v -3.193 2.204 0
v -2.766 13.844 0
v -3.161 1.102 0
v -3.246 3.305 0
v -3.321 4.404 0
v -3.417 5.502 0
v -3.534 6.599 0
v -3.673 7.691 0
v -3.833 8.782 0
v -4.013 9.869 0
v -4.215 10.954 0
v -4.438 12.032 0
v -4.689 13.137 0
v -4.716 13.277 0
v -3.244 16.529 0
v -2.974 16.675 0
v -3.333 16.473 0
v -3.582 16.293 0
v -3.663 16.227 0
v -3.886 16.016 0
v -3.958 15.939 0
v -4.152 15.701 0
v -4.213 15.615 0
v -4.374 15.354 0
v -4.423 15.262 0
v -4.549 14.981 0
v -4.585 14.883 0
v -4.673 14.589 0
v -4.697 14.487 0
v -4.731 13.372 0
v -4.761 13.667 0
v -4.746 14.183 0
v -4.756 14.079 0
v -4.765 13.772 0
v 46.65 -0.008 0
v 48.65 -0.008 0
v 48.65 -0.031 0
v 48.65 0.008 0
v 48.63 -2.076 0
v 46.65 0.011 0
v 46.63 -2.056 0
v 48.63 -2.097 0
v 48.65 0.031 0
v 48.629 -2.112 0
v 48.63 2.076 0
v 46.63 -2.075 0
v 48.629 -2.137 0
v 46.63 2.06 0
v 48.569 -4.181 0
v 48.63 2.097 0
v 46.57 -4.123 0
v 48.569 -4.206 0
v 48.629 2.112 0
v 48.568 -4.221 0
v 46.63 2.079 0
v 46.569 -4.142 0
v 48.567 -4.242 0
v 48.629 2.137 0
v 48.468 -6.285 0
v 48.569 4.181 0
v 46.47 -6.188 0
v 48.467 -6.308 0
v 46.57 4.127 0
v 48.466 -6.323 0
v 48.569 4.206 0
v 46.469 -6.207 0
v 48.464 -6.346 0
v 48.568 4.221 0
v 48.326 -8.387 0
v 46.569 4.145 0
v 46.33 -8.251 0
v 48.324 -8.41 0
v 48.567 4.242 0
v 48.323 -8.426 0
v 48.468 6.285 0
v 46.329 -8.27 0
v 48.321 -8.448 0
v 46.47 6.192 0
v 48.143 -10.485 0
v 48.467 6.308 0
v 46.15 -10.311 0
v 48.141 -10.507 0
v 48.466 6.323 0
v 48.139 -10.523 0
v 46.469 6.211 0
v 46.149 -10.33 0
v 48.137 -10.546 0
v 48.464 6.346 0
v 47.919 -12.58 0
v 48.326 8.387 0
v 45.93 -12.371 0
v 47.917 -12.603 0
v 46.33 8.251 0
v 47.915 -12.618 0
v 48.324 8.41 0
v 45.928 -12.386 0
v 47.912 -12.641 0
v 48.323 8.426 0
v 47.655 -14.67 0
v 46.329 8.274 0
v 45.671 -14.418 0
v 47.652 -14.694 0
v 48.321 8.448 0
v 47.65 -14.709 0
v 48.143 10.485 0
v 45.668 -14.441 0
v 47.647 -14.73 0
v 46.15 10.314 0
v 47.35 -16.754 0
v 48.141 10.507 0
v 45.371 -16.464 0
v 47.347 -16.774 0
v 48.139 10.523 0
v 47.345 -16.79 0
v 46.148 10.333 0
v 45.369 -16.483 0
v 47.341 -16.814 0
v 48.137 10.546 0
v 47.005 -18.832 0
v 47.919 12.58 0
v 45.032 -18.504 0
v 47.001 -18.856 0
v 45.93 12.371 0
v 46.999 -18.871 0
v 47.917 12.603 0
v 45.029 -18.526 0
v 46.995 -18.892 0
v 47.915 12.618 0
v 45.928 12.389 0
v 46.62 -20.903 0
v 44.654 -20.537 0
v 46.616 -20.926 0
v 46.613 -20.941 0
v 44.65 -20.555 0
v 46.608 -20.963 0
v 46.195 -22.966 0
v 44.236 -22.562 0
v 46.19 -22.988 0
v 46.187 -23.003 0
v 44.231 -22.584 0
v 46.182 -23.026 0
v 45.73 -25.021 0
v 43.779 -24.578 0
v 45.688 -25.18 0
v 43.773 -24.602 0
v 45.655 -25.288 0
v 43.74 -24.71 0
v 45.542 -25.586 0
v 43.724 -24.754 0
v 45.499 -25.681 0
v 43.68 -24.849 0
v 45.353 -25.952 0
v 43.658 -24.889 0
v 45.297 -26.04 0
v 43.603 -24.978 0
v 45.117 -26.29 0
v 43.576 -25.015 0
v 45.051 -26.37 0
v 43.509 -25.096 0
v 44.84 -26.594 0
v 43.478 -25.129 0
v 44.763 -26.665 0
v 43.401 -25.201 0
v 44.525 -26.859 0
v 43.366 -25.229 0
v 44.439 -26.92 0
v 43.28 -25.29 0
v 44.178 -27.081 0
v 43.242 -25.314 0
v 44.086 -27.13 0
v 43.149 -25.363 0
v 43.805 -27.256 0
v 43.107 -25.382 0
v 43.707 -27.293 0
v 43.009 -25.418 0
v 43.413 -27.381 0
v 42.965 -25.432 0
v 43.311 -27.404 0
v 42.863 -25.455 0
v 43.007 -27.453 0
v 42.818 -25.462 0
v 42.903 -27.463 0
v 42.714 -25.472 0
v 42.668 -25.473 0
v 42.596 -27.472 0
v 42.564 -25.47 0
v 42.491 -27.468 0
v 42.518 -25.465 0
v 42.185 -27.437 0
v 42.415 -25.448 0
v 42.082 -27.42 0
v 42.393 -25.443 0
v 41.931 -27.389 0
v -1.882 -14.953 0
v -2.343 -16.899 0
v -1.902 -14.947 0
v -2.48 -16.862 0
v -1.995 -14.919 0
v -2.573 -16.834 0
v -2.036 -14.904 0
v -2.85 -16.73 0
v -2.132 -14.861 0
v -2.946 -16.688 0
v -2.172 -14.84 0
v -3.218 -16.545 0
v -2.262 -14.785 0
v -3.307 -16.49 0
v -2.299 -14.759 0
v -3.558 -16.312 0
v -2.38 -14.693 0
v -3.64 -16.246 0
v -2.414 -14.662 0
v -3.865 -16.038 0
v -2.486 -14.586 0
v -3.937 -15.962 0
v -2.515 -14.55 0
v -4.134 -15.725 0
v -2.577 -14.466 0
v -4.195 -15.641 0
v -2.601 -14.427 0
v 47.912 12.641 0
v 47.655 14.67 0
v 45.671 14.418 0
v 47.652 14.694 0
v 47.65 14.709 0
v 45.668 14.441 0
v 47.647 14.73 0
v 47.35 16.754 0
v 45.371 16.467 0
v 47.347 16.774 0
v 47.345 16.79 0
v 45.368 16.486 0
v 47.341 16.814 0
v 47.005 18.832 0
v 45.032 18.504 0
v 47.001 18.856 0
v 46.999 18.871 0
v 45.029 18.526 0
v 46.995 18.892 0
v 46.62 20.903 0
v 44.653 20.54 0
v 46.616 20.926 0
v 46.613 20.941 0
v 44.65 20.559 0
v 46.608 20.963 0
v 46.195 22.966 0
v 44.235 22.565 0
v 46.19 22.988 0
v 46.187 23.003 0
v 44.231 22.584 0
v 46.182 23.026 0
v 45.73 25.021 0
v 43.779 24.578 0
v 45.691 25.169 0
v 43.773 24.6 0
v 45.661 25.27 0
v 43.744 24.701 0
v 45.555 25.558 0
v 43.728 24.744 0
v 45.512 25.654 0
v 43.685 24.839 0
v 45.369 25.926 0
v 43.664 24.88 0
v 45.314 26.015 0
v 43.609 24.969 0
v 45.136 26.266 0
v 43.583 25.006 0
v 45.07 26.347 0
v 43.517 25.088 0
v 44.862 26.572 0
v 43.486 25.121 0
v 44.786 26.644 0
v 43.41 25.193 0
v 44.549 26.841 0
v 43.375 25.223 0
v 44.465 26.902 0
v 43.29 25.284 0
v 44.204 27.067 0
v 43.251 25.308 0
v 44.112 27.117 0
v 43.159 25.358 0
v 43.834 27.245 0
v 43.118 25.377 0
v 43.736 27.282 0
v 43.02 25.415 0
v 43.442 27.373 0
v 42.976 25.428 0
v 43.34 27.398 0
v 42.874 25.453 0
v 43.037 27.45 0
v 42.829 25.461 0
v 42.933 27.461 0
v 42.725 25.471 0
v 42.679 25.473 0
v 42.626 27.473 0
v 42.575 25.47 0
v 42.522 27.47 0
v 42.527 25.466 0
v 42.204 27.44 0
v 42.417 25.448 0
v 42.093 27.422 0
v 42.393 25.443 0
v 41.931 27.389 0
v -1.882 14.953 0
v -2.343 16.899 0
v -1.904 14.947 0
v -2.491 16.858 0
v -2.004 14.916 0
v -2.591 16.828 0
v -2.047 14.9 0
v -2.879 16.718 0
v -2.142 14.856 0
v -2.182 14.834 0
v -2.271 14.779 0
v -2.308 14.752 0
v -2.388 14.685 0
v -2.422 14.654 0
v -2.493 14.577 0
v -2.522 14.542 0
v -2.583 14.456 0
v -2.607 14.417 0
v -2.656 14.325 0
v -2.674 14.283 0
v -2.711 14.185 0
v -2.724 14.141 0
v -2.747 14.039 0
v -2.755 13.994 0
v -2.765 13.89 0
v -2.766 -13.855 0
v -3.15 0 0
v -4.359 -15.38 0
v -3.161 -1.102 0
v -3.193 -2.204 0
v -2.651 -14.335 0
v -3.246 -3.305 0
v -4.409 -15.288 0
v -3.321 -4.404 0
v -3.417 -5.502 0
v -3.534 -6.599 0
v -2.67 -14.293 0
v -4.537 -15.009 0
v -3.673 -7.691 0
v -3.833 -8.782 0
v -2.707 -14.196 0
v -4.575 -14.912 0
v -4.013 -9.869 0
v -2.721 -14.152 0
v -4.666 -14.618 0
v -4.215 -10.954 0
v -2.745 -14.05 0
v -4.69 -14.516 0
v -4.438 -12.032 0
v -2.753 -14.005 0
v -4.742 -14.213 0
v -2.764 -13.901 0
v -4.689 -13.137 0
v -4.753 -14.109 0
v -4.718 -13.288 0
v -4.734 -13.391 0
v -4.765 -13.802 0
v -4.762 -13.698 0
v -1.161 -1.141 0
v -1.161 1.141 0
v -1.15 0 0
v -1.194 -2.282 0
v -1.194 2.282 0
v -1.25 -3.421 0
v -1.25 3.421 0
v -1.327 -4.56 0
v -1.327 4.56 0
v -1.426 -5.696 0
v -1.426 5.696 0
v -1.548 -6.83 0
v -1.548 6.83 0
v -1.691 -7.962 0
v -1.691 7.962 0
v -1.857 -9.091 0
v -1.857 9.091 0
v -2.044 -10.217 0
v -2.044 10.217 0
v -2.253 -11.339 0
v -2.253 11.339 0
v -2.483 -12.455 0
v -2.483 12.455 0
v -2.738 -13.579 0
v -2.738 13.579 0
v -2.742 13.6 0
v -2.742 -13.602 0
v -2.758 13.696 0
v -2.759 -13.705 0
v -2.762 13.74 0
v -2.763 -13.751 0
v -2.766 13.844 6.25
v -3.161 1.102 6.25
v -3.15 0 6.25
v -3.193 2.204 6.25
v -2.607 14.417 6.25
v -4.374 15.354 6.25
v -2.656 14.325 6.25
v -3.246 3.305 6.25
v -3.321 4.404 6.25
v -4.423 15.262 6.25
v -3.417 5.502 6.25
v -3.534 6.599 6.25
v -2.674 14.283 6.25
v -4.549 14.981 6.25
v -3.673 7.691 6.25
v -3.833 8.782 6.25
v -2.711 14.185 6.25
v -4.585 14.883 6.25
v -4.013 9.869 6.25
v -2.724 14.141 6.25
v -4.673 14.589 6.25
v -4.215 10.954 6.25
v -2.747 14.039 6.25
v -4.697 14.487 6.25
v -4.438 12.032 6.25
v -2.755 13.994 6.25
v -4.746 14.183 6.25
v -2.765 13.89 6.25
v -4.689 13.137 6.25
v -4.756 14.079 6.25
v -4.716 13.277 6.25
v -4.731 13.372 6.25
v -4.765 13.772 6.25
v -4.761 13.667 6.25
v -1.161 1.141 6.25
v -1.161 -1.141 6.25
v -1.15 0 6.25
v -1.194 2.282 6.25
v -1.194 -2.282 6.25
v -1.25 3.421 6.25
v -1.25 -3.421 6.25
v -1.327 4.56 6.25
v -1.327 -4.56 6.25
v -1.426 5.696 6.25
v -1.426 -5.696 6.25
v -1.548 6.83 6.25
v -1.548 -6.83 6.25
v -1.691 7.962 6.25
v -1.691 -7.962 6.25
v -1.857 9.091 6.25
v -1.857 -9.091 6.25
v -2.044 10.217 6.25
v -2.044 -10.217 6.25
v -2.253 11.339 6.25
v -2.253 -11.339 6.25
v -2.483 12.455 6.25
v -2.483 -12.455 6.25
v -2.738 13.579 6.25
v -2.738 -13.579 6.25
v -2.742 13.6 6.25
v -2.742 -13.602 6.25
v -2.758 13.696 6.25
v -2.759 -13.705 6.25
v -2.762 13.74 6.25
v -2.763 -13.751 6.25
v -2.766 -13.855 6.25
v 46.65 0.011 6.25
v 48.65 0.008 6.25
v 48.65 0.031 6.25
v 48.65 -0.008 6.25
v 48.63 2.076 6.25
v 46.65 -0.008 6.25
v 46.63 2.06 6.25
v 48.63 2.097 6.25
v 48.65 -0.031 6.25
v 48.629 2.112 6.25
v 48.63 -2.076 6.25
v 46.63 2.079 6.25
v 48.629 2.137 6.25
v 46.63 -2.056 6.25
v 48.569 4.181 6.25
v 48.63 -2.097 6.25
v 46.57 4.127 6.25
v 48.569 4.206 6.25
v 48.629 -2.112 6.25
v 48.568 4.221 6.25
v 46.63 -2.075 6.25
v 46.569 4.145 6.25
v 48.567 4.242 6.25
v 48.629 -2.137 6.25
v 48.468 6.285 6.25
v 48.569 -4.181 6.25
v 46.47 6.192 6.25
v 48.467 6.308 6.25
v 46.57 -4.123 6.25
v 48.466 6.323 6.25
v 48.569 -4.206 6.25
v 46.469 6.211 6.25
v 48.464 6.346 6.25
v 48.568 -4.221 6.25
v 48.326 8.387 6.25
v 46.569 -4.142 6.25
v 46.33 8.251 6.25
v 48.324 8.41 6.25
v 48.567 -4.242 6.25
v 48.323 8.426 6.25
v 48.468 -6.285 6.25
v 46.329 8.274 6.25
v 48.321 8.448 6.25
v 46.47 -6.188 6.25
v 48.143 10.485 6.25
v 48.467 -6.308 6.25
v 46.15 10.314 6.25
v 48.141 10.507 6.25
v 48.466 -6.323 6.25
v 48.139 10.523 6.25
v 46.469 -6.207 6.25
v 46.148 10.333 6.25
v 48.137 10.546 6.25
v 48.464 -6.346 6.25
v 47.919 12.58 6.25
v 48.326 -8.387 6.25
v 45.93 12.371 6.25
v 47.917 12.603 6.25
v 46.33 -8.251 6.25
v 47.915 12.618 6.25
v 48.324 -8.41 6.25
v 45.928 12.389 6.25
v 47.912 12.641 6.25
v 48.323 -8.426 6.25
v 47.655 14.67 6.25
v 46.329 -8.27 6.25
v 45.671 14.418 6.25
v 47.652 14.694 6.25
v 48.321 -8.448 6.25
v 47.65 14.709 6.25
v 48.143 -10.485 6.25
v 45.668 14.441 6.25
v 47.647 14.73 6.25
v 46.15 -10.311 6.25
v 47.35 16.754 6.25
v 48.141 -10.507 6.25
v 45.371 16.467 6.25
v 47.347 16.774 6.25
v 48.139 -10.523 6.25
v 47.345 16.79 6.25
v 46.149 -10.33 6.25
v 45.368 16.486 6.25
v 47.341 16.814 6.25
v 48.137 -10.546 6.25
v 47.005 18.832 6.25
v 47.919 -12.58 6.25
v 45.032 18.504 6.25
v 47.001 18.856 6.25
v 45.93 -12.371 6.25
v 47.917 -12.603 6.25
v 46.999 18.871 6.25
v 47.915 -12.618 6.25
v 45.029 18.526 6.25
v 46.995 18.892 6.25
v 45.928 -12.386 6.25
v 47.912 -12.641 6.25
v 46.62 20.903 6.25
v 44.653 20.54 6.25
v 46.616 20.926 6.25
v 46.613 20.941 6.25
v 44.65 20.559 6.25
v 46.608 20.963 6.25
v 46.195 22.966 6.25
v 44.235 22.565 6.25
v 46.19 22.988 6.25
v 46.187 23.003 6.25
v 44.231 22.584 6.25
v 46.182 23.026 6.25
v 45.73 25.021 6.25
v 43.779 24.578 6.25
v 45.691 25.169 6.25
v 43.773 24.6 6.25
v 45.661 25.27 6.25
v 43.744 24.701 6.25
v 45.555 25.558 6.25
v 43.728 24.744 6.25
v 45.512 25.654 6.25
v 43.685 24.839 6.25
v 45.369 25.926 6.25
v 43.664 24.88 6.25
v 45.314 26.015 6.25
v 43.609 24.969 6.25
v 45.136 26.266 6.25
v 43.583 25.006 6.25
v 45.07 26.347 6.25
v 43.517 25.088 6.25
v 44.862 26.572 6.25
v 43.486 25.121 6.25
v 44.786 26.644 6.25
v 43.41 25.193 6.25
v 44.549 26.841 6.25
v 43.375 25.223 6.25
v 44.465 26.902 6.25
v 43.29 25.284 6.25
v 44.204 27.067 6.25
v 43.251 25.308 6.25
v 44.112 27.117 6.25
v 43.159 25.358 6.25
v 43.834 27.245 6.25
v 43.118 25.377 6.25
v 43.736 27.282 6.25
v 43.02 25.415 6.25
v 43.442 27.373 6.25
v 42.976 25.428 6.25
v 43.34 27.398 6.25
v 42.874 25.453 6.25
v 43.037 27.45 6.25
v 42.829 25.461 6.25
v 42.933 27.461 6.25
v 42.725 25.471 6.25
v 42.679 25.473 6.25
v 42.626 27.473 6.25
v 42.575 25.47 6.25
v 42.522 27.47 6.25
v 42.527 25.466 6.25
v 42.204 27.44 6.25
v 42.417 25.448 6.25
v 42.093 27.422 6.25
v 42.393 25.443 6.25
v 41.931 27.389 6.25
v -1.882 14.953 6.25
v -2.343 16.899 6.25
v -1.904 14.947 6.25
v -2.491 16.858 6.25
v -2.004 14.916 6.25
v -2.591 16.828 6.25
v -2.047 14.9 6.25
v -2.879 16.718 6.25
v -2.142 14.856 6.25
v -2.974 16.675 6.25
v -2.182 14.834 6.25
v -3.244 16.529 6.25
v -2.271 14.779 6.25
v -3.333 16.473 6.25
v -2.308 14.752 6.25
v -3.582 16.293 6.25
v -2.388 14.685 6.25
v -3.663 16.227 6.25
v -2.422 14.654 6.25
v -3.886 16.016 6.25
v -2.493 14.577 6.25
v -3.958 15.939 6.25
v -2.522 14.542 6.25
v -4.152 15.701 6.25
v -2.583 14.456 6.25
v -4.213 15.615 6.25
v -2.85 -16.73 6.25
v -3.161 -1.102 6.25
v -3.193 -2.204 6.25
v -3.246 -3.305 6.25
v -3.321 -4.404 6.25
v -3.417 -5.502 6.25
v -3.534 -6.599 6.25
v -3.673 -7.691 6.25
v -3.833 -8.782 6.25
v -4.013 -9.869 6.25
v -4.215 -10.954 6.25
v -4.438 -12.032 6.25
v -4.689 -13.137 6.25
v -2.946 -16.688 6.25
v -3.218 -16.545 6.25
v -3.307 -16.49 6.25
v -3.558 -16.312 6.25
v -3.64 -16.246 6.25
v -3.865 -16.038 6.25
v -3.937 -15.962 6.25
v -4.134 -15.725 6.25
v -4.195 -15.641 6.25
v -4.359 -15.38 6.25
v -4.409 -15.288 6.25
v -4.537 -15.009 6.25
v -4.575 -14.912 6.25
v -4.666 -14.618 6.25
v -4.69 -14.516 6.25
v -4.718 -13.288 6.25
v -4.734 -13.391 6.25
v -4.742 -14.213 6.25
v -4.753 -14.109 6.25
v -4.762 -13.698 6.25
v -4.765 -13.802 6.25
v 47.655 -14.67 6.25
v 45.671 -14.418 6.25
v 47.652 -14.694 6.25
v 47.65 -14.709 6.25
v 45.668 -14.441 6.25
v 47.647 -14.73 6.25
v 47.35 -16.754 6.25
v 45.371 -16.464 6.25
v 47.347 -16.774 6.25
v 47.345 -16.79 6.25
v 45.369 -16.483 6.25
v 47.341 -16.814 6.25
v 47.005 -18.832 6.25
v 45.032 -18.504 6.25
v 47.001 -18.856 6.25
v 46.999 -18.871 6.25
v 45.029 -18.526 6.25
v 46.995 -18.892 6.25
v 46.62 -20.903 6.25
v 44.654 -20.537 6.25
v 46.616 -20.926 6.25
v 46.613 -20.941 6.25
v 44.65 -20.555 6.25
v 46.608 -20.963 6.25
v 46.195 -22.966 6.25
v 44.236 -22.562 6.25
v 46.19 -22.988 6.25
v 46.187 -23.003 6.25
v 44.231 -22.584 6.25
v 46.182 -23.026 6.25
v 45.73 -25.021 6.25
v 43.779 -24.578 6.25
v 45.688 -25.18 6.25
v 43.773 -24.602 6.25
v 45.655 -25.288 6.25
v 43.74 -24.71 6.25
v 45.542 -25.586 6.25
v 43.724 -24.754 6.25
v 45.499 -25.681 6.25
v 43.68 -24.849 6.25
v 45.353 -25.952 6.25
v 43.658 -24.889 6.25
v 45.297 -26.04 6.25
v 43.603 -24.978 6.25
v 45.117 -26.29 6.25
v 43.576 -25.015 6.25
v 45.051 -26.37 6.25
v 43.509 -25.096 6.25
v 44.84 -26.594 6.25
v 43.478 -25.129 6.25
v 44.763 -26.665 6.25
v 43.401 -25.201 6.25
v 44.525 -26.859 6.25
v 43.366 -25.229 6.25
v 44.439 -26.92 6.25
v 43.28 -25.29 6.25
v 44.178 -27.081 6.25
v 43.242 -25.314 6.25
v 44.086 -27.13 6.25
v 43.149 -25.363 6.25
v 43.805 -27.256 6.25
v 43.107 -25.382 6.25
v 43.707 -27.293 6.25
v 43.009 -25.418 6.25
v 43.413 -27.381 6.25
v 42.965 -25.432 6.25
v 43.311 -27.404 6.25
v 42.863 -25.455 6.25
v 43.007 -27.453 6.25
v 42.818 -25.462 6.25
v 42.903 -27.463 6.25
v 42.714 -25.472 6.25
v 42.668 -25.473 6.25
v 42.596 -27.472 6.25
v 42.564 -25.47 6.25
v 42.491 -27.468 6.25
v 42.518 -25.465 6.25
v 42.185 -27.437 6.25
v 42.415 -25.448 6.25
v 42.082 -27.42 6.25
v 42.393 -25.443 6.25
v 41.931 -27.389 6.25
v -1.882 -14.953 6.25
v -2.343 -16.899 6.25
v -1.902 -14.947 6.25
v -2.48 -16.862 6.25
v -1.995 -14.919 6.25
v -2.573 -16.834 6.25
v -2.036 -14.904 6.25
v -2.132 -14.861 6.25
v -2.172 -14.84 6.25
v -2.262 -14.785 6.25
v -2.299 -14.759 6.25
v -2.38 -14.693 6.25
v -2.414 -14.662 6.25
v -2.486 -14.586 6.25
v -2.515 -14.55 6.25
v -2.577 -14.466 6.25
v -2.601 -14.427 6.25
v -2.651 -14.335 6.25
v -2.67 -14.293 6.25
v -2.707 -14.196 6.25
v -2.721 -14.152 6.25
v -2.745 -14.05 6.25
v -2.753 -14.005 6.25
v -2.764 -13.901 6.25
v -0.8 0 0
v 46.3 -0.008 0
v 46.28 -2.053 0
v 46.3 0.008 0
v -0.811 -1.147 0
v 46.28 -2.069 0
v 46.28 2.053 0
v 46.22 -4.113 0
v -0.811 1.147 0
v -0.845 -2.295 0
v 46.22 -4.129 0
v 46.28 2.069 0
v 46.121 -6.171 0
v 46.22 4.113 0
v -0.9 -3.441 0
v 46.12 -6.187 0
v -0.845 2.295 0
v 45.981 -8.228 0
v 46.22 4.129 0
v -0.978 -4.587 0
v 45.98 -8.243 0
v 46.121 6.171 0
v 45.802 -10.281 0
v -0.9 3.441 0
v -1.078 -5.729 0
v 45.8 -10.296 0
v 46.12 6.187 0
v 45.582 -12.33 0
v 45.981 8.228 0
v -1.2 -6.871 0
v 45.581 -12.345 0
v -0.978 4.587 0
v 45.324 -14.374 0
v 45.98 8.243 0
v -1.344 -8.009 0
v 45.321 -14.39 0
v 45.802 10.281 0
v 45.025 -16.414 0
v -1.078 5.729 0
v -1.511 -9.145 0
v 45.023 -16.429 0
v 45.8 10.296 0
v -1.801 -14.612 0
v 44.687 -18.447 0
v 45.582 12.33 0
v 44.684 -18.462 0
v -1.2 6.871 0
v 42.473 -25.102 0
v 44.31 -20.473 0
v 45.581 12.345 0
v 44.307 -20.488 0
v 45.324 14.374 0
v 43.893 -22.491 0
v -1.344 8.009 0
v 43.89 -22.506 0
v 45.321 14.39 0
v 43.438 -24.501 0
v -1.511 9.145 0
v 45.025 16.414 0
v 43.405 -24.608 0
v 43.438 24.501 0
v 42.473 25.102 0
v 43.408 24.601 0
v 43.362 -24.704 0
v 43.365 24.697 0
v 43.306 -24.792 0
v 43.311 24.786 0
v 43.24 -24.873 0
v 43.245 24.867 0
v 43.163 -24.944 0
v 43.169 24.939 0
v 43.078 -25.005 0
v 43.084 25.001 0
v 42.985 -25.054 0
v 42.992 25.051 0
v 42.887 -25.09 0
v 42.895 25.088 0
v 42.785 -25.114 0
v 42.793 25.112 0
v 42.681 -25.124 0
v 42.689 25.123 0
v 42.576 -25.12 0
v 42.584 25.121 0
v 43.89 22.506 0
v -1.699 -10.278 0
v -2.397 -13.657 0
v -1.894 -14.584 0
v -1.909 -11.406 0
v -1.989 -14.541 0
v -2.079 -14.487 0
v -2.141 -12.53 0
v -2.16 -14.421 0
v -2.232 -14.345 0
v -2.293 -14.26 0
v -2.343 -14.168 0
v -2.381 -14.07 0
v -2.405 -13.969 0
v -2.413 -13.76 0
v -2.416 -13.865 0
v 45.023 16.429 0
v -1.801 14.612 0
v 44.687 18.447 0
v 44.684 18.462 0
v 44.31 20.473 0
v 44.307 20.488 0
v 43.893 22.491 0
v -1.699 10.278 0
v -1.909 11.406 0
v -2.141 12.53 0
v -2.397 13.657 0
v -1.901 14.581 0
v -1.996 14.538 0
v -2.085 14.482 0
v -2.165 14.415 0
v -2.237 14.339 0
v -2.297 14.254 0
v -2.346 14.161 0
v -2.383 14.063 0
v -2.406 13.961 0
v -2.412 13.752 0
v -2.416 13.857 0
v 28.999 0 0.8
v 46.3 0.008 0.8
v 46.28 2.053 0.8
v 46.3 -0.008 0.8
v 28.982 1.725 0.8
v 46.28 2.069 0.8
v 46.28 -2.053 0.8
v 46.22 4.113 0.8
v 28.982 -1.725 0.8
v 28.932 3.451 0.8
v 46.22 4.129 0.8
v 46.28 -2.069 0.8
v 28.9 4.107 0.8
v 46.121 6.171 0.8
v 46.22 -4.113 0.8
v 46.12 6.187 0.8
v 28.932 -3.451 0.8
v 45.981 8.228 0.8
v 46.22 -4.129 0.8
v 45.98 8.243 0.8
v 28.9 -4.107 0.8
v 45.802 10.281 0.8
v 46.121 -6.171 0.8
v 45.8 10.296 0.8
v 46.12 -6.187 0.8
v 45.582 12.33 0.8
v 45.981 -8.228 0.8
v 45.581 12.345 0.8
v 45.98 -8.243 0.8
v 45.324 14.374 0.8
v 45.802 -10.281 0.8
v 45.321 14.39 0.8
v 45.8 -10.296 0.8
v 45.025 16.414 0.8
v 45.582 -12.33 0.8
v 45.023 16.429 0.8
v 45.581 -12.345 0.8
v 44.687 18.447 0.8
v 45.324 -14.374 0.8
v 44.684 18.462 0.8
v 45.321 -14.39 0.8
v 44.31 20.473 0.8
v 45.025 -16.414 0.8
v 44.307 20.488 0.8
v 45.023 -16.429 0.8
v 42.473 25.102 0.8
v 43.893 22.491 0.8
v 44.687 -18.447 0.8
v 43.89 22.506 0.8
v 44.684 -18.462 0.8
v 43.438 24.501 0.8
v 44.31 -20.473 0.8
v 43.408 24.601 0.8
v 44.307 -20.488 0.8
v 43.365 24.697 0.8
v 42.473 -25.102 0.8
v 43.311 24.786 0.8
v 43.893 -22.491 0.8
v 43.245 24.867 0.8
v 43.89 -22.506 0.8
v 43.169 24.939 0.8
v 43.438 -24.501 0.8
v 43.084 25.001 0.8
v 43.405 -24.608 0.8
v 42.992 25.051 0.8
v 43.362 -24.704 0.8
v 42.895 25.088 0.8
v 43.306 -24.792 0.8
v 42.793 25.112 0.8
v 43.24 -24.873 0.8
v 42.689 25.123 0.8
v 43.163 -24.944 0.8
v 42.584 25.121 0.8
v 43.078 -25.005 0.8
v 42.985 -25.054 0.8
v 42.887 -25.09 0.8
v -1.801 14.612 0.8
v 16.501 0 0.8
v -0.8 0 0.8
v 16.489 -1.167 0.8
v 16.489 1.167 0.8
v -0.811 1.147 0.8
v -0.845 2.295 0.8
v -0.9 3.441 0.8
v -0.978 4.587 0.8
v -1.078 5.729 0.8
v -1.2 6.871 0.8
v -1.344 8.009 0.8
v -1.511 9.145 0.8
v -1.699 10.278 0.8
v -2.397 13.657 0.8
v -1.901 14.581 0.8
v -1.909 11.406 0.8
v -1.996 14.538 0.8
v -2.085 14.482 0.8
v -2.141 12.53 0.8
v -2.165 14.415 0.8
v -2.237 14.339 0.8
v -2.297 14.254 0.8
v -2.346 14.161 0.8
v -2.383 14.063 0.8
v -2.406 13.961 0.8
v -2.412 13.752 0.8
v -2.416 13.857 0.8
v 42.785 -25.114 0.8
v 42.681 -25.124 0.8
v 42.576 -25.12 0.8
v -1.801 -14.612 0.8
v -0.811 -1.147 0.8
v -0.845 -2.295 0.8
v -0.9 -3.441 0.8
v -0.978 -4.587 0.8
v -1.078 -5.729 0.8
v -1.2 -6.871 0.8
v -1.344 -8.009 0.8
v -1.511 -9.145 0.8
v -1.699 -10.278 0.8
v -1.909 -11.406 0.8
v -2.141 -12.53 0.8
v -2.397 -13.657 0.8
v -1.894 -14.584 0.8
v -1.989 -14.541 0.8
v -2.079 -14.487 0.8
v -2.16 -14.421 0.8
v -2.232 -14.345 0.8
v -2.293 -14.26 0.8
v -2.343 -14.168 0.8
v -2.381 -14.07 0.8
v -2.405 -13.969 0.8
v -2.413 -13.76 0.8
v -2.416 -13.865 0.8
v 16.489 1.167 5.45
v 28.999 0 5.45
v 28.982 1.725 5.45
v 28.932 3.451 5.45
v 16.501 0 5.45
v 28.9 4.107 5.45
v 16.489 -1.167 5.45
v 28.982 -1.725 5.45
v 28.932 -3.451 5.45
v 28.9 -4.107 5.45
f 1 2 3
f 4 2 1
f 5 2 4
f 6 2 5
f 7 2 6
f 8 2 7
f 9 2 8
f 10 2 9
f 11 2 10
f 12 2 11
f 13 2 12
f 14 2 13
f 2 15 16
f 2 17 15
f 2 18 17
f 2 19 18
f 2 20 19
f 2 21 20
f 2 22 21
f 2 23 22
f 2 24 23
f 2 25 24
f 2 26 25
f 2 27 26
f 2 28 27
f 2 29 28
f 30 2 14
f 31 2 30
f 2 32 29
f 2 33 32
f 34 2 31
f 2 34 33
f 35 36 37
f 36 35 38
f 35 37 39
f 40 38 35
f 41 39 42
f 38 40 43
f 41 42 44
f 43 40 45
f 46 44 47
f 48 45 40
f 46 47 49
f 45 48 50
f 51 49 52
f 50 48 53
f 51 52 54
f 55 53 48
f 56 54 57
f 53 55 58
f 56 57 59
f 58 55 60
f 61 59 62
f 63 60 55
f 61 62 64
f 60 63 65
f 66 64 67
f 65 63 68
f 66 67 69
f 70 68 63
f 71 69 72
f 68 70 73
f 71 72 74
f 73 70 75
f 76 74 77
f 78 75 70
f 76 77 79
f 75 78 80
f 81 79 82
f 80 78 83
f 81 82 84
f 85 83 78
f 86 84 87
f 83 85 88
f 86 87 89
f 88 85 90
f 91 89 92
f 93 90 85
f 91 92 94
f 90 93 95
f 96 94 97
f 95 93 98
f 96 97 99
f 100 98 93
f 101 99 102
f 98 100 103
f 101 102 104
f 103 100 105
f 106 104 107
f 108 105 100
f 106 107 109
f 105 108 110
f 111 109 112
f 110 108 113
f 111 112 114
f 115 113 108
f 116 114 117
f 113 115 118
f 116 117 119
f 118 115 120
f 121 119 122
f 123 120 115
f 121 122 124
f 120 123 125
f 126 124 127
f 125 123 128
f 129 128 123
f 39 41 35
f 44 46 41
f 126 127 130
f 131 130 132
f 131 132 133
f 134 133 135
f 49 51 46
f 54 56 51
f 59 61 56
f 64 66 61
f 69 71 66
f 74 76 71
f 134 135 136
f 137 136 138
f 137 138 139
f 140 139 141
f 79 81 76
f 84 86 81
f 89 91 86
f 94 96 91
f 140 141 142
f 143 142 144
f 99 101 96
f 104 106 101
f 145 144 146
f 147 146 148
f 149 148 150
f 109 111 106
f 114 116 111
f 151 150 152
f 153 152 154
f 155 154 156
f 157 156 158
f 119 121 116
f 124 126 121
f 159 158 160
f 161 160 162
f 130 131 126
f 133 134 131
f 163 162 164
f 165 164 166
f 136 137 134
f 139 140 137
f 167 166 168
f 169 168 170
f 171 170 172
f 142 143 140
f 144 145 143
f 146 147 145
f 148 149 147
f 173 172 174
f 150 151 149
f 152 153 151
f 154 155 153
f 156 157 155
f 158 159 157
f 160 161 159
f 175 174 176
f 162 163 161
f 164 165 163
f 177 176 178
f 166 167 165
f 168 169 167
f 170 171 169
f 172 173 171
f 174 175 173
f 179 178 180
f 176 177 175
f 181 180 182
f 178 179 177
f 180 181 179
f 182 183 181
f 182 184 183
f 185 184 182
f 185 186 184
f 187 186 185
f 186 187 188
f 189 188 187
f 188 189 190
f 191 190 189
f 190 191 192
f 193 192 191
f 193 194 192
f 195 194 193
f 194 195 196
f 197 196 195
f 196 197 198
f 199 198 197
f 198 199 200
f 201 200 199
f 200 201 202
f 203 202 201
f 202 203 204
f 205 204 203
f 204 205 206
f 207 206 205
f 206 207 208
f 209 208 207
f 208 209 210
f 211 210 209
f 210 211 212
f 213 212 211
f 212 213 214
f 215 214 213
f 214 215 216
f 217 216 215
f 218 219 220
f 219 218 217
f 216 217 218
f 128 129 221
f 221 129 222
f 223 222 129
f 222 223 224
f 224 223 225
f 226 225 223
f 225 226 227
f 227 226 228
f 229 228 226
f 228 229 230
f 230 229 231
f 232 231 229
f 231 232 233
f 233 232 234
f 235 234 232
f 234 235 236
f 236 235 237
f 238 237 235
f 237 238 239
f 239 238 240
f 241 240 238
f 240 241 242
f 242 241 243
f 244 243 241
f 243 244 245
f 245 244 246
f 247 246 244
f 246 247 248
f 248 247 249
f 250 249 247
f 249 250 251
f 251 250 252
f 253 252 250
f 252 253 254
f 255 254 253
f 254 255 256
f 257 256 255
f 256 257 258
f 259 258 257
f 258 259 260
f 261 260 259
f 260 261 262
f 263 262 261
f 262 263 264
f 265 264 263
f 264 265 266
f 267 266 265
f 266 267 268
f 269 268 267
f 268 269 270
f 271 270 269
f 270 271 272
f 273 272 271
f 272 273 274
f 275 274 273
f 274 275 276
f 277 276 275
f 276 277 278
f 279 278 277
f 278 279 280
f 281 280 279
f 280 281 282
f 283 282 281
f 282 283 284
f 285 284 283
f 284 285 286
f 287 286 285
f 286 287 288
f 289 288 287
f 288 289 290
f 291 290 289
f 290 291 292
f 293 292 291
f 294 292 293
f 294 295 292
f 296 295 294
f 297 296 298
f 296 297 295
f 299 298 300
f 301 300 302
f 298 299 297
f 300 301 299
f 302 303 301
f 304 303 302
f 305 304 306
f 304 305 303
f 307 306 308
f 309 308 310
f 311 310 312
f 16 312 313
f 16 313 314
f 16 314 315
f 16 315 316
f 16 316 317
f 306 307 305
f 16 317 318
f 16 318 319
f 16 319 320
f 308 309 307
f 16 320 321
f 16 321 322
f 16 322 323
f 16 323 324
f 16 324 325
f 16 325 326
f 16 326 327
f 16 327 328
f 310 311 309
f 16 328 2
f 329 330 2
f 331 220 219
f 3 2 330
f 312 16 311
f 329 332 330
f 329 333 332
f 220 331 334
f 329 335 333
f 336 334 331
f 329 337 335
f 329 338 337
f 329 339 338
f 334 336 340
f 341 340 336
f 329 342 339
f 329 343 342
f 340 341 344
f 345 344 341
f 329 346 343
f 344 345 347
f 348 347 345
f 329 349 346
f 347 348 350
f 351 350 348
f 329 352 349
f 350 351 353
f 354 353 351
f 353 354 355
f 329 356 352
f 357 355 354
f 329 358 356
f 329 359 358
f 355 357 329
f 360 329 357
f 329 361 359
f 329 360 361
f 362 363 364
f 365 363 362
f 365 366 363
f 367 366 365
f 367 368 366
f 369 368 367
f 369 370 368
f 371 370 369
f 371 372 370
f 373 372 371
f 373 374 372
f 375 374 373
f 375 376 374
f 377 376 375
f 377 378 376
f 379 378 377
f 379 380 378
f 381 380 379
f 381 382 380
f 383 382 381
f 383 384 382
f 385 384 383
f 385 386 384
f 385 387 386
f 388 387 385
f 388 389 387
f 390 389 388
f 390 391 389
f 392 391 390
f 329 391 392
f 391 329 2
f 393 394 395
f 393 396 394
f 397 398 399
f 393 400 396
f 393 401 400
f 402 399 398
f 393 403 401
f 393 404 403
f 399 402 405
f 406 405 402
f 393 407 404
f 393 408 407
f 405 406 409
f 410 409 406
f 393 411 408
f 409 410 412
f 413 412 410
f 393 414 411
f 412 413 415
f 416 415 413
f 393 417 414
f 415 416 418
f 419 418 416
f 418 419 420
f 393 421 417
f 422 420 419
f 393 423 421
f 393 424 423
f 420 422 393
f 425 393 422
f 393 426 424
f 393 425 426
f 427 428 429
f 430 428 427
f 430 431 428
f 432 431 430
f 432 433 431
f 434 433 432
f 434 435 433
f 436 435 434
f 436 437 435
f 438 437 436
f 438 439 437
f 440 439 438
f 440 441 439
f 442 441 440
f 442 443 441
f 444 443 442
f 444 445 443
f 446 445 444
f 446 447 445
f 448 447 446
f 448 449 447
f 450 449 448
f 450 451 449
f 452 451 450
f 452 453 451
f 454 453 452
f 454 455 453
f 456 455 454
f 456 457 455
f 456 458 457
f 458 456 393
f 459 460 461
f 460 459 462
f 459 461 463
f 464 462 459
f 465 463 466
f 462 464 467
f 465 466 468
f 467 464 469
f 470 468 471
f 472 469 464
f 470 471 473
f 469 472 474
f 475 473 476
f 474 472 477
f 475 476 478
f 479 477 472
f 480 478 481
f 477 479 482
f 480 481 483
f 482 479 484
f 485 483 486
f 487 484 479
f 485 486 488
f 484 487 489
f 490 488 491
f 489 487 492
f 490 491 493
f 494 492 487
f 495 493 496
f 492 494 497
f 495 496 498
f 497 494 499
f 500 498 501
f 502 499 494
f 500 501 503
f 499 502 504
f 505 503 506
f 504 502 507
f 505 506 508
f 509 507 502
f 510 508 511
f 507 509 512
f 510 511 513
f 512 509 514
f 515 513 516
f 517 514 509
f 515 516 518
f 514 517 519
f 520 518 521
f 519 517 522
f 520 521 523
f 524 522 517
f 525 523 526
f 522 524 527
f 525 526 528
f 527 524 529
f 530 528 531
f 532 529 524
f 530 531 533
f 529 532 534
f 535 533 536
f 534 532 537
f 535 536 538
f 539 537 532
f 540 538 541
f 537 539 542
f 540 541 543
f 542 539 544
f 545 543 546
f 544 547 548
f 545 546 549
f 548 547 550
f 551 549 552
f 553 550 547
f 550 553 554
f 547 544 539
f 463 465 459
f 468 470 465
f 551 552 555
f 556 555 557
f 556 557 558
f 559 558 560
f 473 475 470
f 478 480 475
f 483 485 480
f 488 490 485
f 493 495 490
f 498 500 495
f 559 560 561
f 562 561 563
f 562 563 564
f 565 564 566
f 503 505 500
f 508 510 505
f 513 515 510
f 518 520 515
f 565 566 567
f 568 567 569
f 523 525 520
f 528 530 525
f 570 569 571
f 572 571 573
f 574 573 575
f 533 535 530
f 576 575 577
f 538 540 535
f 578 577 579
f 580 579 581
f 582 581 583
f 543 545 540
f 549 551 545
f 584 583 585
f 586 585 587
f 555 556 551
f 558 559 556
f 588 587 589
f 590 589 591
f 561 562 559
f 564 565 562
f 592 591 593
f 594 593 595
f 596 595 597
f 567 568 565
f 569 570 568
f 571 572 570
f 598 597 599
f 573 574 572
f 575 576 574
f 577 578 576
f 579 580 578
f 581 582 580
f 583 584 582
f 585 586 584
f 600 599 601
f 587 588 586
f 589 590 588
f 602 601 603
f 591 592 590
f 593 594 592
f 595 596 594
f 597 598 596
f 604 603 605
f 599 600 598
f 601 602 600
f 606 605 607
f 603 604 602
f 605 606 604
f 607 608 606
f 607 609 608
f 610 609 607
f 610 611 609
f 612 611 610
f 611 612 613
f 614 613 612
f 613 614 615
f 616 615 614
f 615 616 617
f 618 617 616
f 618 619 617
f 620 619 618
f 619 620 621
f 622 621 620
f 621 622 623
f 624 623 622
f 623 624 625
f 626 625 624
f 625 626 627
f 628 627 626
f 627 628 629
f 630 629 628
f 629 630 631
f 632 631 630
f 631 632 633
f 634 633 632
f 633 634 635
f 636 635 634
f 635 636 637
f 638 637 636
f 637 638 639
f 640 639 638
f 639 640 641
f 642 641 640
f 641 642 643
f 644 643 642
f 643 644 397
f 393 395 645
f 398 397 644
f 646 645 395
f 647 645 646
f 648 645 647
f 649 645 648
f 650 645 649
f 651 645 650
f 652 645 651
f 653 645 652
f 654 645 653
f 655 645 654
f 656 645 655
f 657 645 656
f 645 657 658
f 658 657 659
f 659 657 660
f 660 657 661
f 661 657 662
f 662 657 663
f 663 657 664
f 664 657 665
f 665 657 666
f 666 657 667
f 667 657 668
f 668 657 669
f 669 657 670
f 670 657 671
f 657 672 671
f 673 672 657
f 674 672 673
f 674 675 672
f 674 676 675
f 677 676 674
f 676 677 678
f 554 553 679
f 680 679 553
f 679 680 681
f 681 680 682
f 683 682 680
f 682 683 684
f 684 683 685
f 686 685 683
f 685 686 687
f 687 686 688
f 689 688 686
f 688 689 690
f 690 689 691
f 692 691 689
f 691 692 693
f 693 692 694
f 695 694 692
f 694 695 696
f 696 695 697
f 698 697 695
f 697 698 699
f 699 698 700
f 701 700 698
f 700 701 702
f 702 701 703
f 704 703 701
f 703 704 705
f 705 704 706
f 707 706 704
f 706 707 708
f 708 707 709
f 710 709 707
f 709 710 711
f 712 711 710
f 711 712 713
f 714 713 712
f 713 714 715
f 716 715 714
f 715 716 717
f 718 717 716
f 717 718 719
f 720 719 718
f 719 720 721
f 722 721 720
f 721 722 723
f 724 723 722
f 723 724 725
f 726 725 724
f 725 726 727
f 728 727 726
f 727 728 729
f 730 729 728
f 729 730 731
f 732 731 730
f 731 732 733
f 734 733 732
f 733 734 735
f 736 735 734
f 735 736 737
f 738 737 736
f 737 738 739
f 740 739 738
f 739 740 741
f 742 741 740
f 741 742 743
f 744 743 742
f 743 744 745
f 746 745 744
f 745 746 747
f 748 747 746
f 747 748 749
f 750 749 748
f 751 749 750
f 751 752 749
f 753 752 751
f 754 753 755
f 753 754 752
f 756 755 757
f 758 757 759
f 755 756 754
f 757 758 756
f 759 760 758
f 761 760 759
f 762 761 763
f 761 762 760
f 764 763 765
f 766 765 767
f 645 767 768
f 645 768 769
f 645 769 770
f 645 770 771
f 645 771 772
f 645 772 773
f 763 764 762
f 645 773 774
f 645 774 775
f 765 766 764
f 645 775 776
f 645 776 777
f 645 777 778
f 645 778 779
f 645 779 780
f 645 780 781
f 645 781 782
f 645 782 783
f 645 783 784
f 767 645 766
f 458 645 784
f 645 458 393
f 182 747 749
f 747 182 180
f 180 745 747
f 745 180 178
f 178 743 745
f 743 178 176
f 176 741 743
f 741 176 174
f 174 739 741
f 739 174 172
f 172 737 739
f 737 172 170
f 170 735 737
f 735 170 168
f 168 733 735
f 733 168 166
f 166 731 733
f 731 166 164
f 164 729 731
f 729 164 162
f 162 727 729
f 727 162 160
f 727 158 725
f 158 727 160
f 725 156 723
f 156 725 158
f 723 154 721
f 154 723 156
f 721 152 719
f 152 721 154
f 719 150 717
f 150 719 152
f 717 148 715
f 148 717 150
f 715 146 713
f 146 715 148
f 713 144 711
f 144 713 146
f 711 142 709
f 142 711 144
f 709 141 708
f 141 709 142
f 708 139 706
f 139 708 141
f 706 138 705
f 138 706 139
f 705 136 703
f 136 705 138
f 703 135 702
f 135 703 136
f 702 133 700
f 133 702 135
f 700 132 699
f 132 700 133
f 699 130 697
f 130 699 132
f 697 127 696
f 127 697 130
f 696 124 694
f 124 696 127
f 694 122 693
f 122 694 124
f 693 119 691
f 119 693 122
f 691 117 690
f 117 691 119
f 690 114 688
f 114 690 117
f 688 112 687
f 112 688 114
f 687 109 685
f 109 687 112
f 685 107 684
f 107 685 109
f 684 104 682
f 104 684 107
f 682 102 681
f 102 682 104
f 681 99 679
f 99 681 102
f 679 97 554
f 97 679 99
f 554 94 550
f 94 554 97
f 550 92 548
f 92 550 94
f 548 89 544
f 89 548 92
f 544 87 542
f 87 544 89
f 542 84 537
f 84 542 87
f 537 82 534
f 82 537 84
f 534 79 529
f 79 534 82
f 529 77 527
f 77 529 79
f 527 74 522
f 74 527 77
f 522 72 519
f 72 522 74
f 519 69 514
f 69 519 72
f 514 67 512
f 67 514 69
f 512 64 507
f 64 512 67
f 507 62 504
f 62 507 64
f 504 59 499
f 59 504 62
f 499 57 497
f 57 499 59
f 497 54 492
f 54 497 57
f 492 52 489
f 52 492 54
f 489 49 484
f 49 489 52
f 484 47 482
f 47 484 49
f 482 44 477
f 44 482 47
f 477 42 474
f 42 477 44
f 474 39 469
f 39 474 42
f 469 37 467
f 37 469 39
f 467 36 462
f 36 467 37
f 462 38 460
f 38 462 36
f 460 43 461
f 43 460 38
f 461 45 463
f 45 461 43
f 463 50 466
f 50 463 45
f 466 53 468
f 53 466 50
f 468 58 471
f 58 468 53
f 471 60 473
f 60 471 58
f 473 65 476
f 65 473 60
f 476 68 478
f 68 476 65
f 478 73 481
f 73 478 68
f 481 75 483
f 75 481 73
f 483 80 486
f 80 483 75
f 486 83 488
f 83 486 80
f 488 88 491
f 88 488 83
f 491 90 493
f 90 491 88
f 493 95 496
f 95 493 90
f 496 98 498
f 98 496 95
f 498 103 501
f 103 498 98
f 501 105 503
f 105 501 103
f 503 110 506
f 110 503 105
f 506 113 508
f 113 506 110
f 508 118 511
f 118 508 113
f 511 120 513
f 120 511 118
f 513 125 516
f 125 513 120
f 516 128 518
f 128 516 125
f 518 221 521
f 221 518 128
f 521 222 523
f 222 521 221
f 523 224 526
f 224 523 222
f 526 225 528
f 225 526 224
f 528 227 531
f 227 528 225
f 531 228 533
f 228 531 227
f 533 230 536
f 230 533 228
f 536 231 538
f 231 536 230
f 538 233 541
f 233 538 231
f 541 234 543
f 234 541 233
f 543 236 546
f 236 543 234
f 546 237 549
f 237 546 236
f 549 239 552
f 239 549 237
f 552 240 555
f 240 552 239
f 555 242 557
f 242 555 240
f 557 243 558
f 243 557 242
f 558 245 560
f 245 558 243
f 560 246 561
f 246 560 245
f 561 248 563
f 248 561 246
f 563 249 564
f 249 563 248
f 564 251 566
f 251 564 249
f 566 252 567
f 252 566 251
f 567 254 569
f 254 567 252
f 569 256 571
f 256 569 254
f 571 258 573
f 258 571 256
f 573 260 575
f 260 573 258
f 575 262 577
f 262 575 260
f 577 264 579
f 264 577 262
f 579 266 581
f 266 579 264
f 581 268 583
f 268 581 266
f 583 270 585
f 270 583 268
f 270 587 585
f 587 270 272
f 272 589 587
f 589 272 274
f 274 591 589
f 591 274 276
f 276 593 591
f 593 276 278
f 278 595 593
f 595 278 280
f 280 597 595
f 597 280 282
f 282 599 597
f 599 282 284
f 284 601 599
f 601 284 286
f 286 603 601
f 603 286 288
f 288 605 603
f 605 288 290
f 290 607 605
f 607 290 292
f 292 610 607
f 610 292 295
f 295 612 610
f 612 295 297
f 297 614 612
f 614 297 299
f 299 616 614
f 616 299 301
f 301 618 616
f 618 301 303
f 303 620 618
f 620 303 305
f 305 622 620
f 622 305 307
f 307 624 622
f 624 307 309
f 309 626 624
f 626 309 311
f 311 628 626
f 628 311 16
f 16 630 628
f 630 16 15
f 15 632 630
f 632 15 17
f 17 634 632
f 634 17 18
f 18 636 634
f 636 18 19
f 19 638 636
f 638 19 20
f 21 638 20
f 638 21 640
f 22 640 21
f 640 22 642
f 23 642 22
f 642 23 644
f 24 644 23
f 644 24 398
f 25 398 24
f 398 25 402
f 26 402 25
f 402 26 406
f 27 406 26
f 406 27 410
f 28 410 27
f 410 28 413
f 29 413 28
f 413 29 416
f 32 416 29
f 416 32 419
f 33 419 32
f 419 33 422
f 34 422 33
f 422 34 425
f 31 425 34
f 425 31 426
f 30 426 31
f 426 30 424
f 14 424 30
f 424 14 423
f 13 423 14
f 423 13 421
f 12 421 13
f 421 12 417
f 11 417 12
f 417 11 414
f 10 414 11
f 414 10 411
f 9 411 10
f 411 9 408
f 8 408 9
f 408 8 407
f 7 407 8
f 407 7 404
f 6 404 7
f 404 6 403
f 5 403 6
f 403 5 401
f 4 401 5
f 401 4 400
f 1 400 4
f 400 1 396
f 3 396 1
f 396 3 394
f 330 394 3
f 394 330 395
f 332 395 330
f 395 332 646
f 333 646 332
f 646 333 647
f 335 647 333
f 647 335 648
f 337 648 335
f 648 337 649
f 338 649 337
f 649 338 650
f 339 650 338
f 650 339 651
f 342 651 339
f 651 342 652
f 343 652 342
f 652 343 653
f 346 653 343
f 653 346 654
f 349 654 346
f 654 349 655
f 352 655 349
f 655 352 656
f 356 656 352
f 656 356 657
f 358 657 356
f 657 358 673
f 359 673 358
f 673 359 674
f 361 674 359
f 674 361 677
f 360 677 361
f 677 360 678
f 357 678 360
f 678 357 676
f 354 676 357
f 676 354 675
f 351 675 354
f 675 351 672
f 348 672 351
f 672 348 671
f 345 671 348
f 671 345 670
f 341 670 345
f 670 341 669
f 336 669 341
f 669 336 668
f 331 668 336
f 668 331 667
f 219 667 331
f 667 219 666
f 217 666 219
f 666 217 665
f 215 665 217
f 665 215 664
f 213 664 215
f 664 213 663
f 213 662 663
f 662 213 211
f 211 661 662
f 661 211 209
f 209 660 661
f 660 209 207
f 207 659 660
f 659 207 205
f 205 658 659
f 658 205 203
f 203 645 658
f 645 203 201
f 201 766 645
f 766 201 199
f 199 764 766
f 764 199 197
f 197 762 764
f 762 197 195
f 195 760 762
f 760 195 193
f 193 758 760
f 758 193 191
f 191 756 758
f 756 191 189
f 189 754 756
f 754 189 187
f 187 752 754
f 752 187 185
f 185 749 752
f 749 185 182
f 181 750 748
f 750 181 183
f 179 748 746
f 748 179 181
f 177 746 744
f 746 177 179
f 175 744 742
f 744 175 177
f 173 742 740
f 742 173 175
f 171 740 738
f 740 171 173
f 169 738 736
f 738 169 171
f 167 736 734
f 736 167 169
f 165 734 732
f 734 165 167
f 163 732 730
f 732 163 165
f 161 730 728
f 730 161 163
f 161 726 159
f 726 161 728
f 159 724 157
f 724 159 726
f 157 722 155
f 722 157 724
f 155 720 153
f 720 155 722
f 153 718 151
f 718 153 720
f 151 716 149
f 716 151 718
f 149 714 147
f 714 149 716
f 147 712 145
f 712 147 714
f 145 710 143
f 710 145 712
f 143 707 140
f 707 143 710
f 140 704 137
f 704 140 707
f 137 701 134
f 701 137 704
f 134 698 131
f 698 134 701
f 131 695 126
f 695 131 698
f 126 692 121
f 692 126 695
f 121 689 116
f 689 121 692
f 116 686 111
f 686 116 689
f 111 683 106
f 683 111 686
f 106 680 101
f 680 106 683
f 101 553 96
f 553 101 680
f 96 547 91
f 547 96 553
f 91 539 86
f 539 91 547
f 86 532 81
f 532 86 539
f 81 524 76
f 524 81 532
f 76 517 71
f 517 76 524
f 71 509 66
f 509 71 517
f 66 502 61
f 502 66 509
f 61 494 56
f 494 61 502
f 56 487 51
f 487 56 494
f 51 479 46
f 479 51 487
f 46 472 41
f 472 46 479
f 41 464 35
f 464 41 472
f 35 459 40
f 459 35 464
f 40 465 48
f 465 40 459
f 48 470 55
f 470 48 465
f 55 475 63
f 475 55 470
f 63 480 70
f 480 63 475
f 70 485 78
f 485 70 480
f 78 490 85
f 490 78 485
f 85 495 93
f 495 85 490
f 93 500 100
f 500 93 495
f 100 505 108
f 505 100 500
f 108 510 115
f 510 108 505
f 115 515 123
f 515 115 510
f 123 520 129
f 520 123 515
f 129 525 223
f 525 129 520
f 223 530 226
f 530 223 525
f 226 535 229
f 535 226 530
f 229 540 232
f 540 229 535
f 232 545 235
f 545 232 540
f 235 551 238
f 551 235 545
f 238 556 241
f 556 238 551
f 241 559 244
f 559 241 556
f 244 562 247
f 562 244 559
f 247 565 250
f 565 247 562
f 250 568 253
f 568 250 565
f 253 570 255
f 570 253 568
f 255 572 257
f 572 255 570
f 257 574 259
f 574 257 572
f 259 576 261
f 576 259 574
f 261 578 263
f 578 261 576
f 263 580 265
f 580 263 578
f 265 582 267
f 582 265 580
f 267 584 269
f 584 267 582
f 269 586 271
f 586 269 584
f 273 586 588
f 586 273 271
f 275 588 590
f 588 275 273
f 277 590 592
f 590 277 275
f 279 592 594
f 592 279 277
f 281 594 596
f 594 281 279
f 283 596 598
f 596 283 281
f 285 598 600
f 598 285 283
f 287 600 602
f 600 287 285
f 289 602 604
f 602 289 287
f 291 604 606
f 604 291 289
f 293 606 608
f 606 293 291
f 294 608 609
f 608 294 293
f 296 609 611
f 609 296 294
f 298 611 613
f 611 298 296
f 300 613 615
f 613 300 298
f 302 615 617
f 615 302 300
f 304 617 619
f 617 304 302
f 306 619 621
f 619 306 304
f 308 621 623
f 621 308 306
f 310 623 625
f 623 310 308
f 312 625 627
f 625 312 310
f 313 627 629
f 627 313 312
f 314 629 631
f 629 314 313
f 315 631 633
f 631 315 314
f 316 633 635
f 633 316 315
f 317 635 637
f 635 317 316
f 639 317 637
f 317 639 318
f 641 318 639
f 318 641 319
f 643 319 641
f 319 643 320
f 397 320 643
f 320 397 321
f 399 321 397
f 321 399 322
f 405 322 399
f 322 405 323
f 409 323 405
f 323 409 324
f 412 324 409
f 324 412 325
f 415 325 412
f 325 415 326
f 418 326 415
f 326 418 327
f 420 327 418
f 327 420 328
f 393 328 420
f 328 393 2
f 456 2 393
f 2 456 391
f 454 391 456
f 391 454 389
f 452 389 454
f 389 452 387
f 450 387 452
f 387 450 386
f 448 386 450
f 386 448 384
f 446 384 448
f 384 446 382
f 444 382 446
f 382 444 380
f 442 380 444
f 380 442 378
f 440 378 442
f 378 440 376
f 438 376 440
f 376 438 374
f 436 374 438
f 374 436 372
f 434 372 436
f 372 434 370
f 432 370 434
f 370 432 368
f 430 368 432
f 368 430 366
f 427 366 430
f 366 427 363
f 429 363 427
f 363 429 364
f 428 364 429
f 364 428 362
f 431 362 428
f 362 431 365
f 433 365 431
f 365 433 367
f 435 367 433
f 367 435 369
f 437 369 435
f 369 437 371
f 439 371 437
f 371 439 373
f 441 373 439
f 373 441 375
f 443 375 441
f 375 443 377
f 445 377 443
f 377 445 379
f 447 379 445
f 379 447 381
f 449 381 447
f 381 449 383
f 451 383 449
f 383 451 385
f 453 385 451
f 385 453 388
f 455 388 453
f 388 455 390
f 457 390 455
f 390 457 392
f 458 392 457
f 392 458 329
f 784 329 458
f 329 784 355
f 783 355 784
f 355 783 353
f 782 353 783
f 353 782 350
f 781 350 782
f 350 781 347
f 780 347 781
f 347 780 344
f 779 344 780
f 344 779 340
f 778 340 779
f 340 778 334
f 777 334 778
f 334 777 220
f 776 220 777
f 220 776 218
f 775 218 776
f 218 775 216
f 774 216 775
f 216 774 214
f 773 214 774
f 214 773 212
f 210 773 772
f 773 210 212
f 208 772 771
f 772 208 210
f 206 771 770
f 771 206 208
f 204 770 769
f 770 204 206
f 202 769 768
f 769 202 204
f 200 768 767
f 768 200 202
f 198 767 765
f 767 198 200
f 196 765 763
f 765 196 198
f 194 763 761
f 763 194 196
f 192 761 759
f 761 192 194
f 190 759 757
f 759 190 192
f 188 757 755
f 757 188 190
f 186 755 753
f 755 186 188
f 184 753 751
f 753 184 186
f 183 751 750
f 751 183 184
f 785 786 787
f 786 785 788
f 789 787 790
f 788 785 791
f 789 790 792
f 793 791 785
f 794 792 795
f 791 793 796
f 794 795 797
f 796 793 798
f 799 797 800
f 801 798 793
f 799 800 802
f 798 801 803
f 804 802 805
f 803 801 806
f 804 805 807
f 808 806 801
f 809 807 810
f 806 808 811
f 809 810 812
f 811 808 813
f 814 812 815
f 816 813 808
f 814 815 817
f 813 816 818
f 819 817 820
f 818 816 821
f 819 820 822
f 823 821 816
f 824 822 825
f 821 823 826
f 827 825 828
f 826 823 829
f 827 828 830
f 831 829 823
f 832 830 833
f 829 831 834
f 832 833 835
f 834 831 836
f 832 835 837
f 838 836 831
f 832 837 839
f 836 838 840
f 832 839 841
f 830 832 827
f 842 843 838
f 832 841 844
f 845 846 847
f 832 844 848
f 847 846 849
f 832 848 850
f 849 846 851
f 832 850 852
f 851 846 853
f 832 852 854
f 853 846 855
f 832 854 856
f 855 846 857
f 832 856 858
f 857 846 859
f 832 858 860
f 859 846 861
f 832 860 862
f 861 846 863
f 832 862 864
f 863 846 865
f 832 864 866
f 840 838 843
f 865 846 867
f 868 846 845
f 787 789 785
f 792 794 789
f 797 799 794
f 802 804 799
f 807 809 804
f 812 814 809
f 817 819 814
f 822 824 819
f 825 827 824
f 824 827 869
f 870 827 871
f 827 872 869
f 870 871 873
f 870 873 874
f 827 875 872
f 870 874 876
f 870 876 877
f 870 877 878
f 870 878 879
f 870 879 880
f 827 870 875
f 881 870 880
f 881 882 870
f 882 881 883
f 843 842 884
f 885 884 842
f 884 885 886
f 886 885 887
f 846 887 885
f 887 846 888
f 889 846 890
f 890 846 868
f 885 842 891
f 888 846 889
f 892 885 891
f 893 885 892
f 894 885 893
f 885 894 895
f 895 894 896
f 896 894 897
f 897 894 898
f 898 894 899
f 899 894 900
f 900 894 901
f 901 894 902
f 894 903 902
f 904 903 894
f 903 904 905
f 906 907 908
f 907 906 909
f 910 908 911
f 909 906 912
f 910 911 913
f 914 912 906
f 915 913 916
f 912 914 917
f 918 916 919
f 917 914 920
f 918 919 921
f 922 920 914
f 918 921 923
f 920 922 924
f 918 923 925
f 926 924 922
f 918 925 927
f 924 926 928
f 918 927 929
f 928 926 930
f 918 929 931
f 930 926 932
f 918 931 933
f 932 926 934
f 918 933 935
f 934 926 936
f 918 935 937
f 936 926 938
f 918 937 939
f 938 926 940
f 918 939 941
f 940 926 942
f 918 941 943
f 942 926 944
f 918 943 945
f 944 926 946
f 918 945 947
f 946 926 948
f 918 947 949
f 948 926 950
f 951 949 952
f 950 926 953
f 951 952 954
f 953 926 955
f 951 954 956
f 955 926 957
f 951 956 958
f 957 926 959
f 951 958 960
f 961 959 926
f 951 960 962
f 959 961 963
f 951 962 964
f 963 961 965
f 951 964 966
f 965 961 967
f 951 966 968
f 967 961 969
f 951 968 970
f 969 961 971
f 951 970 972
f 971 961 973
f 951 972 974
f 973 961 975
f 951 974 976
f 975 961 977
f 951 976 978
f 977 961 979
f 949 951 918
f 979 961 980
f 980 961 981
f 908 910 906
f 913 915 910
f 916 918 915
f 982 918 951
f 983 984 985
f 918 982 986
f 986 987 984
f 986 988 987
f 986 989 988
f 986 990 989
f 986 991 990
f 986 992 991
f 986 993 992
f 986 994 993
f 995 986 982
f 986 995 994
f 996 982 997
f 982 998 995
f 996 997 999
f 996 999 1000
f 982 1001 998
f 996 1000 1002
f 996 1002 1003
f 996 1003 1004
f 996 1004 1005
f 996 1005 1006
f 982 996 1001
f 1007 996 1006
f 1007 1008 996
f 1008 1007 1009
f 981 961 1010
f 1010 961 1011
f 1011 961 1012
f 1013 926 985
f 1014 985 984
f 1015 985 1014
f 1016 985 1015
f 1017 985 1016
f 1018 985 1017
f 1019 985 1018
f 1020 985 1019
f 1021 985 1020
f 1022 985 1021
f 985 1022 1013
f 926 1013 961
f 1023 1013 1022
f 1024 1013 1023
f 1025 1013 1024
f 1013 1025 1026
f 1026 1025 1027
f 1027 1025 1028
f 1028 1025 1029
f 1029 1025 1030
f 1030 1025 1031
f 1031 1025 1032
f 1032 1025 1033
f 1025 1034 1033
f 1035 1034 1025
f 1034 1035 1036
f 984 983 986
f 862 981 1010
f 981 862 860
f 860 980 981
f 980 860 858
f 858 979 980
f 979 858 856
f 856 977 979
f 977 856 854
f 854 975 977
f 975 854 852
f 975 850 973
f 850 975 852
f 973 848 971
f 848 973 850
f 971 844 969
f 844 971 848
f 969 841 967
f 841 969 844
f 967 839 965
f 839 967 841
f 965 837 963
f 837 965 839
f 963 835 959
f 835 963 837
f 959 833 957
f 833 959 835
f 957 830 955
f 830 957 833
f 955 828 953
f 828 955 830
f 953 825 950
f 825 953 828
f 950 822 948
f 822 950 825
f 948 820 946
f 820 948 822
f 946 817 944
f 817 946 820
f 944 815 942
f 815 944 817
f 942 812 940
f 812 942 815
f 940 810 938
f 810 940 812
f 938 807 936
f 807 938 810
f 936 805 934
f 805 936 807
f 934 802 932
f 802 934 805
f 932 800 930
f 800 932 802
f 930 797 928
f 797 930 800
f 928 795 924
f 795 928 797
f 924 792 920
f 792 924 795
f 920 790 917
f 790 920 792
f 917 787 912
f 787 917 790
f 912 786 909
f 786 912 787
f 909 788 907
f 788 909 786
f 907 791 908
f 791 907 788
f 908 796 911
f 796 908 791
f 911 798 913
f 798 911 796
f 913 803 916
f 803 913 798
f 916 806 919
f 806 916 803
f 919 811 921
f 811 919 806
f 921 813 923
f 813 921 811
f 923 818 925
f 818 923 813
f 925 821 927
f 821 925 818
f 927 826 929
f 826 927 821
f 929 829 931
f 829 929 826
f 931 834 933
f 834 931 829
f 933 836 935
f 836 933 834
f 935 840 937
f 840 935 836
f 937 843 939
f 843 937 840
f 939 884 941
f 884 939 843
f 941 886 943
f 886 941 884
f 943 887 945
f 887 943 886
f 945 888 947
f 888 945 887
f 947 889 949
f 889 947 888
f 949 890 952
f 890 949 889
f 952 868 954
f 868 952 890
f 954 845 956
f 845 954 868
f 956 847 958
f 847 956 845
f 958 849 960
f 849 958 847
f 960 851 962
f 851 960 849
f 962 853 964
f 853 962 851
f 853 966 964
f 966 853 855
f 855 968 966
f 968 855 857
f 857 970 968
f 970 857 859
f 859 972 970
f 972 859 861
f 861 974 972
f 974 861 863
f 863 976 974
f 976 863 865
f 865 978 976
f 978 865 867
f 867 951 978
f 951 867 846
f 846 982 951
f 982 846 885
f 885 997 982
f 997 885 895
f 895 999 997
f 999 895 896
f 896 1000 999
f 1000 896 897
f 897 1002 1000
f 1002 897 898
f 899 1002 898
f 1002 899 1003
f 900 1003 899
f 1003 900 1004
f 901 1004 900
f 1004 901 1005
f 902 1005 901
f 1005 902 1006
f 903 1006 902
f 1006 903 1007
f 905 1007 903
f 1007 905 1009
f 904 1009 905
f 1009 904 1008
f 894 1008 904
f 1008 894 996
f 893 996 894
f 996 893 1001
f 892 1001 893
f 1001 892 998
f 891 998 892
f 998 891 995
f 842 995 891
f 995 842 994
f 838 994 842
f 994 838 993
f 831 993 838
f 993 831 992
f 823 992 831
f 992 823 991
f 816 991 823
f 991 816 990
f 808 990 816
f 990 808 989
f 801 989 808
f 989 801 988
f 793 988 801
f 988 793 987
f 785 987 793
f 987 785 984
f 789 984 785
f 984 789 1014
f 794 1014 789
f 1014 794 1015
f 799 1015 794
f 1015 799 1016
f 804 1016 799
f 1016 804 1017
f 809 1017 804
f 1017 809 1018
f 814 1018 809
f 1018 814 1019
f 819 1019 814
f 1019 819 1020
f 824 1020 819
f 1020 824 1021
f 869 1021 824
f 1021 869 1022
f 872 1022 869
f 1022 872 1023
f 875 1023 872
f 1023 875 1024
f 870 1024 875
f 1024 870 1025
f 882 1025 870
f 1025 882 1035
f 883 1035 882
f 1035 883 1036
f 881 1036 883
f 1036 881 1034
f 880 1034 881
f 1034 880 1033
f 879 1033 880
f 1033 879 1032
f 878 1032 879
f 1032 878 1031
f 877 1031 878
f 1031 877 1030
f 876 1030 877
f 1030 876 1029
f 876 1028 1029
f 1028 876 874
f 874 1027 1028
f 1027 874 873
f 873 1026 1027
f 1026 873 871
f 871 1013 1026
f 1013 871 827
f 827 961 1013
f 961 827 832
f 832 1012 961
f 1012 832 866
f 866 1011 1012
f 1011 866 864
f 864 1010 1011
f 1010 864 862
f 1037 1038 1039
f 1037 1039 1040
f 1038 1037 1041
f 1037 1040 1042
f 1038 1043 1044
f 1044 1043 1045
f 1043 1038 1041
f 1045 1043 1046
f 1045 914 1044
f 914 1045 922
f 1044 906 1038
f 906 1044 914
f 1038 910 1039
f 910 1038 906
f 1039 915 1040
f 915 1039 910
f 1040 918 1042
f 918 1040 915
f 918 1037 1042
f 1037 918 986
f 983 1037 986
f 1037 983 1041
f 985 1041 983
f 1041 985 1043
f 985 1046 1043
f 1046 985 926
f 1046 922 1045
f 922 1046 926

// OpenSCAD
// Gen-CR — fit coupon (bay part): O20/O5 THROUGH pockets at carrier thickness (test on a steel offcut), 608 seat,
// D-flat bore, gap shim, and one bobbin-bay slice (bobbin footprint + bay_clear) to test former fit.
include <parameters.scad>;
$fn = 48;
// D-flat keyed bore: flat faces +X (angle 0 = magnet pocket 0 = index notch)
module dflat_bore(h) {
    intersection() {
        cylinder(d=shaft_bore, h=h);
        translate([-shaft_bore, -shaft_bore, 0]) cube([shaft_bore + dflat_x, 2*shaft_bore, h]);
    }
}
module sector_2d(r_in, r_out, ang) {
    polygon([
        for (a = [-ang/2 : ang/24 : ang/2]) [r_in*cos(a), r_in*sin(a)],
        for (a = [ang/2 : -ang/24 : -ang/2]) [r_out*cos(a), r_out*sin(a)]
    ]);
}
module footprint_2d() { offset(r=wall) sector_2d(coil_id_r, coil_od_r, span_deg); }
module hub_2d()       { offset(delta=-coil_core_inset) sector_2d(coil_id_r, coil_od_r, span_deg); }

// bay slice at FULL stator thickness with one bobbin BASE printed IN PLACE inside it (bay_clear gap): this is the
// print-in-place test for the one-plate stator. After printing, the base must pop out with finger pressure; if it is fused,
// print coil_former.stl separately (print-packs/parts/) instead of using the in-place bases.
translate([-coil_id_r, 0, 0]) {
    difference() {
        linear_extrude(stator_thick) offset(r=bay_clear + 2) footprint_2d();
        translate([0, 0, -0.1]) linear_extrude(stator_thick + 0.2) offset(r=bay_clear) footprint_2d();
    }
    union() {
        linear_extrude(flange_t) footprint_2d();
        translate([0, 0, flange_t - 0.01]) linear_extrude(former_web + 0.01) hub_2d();
    }
}
